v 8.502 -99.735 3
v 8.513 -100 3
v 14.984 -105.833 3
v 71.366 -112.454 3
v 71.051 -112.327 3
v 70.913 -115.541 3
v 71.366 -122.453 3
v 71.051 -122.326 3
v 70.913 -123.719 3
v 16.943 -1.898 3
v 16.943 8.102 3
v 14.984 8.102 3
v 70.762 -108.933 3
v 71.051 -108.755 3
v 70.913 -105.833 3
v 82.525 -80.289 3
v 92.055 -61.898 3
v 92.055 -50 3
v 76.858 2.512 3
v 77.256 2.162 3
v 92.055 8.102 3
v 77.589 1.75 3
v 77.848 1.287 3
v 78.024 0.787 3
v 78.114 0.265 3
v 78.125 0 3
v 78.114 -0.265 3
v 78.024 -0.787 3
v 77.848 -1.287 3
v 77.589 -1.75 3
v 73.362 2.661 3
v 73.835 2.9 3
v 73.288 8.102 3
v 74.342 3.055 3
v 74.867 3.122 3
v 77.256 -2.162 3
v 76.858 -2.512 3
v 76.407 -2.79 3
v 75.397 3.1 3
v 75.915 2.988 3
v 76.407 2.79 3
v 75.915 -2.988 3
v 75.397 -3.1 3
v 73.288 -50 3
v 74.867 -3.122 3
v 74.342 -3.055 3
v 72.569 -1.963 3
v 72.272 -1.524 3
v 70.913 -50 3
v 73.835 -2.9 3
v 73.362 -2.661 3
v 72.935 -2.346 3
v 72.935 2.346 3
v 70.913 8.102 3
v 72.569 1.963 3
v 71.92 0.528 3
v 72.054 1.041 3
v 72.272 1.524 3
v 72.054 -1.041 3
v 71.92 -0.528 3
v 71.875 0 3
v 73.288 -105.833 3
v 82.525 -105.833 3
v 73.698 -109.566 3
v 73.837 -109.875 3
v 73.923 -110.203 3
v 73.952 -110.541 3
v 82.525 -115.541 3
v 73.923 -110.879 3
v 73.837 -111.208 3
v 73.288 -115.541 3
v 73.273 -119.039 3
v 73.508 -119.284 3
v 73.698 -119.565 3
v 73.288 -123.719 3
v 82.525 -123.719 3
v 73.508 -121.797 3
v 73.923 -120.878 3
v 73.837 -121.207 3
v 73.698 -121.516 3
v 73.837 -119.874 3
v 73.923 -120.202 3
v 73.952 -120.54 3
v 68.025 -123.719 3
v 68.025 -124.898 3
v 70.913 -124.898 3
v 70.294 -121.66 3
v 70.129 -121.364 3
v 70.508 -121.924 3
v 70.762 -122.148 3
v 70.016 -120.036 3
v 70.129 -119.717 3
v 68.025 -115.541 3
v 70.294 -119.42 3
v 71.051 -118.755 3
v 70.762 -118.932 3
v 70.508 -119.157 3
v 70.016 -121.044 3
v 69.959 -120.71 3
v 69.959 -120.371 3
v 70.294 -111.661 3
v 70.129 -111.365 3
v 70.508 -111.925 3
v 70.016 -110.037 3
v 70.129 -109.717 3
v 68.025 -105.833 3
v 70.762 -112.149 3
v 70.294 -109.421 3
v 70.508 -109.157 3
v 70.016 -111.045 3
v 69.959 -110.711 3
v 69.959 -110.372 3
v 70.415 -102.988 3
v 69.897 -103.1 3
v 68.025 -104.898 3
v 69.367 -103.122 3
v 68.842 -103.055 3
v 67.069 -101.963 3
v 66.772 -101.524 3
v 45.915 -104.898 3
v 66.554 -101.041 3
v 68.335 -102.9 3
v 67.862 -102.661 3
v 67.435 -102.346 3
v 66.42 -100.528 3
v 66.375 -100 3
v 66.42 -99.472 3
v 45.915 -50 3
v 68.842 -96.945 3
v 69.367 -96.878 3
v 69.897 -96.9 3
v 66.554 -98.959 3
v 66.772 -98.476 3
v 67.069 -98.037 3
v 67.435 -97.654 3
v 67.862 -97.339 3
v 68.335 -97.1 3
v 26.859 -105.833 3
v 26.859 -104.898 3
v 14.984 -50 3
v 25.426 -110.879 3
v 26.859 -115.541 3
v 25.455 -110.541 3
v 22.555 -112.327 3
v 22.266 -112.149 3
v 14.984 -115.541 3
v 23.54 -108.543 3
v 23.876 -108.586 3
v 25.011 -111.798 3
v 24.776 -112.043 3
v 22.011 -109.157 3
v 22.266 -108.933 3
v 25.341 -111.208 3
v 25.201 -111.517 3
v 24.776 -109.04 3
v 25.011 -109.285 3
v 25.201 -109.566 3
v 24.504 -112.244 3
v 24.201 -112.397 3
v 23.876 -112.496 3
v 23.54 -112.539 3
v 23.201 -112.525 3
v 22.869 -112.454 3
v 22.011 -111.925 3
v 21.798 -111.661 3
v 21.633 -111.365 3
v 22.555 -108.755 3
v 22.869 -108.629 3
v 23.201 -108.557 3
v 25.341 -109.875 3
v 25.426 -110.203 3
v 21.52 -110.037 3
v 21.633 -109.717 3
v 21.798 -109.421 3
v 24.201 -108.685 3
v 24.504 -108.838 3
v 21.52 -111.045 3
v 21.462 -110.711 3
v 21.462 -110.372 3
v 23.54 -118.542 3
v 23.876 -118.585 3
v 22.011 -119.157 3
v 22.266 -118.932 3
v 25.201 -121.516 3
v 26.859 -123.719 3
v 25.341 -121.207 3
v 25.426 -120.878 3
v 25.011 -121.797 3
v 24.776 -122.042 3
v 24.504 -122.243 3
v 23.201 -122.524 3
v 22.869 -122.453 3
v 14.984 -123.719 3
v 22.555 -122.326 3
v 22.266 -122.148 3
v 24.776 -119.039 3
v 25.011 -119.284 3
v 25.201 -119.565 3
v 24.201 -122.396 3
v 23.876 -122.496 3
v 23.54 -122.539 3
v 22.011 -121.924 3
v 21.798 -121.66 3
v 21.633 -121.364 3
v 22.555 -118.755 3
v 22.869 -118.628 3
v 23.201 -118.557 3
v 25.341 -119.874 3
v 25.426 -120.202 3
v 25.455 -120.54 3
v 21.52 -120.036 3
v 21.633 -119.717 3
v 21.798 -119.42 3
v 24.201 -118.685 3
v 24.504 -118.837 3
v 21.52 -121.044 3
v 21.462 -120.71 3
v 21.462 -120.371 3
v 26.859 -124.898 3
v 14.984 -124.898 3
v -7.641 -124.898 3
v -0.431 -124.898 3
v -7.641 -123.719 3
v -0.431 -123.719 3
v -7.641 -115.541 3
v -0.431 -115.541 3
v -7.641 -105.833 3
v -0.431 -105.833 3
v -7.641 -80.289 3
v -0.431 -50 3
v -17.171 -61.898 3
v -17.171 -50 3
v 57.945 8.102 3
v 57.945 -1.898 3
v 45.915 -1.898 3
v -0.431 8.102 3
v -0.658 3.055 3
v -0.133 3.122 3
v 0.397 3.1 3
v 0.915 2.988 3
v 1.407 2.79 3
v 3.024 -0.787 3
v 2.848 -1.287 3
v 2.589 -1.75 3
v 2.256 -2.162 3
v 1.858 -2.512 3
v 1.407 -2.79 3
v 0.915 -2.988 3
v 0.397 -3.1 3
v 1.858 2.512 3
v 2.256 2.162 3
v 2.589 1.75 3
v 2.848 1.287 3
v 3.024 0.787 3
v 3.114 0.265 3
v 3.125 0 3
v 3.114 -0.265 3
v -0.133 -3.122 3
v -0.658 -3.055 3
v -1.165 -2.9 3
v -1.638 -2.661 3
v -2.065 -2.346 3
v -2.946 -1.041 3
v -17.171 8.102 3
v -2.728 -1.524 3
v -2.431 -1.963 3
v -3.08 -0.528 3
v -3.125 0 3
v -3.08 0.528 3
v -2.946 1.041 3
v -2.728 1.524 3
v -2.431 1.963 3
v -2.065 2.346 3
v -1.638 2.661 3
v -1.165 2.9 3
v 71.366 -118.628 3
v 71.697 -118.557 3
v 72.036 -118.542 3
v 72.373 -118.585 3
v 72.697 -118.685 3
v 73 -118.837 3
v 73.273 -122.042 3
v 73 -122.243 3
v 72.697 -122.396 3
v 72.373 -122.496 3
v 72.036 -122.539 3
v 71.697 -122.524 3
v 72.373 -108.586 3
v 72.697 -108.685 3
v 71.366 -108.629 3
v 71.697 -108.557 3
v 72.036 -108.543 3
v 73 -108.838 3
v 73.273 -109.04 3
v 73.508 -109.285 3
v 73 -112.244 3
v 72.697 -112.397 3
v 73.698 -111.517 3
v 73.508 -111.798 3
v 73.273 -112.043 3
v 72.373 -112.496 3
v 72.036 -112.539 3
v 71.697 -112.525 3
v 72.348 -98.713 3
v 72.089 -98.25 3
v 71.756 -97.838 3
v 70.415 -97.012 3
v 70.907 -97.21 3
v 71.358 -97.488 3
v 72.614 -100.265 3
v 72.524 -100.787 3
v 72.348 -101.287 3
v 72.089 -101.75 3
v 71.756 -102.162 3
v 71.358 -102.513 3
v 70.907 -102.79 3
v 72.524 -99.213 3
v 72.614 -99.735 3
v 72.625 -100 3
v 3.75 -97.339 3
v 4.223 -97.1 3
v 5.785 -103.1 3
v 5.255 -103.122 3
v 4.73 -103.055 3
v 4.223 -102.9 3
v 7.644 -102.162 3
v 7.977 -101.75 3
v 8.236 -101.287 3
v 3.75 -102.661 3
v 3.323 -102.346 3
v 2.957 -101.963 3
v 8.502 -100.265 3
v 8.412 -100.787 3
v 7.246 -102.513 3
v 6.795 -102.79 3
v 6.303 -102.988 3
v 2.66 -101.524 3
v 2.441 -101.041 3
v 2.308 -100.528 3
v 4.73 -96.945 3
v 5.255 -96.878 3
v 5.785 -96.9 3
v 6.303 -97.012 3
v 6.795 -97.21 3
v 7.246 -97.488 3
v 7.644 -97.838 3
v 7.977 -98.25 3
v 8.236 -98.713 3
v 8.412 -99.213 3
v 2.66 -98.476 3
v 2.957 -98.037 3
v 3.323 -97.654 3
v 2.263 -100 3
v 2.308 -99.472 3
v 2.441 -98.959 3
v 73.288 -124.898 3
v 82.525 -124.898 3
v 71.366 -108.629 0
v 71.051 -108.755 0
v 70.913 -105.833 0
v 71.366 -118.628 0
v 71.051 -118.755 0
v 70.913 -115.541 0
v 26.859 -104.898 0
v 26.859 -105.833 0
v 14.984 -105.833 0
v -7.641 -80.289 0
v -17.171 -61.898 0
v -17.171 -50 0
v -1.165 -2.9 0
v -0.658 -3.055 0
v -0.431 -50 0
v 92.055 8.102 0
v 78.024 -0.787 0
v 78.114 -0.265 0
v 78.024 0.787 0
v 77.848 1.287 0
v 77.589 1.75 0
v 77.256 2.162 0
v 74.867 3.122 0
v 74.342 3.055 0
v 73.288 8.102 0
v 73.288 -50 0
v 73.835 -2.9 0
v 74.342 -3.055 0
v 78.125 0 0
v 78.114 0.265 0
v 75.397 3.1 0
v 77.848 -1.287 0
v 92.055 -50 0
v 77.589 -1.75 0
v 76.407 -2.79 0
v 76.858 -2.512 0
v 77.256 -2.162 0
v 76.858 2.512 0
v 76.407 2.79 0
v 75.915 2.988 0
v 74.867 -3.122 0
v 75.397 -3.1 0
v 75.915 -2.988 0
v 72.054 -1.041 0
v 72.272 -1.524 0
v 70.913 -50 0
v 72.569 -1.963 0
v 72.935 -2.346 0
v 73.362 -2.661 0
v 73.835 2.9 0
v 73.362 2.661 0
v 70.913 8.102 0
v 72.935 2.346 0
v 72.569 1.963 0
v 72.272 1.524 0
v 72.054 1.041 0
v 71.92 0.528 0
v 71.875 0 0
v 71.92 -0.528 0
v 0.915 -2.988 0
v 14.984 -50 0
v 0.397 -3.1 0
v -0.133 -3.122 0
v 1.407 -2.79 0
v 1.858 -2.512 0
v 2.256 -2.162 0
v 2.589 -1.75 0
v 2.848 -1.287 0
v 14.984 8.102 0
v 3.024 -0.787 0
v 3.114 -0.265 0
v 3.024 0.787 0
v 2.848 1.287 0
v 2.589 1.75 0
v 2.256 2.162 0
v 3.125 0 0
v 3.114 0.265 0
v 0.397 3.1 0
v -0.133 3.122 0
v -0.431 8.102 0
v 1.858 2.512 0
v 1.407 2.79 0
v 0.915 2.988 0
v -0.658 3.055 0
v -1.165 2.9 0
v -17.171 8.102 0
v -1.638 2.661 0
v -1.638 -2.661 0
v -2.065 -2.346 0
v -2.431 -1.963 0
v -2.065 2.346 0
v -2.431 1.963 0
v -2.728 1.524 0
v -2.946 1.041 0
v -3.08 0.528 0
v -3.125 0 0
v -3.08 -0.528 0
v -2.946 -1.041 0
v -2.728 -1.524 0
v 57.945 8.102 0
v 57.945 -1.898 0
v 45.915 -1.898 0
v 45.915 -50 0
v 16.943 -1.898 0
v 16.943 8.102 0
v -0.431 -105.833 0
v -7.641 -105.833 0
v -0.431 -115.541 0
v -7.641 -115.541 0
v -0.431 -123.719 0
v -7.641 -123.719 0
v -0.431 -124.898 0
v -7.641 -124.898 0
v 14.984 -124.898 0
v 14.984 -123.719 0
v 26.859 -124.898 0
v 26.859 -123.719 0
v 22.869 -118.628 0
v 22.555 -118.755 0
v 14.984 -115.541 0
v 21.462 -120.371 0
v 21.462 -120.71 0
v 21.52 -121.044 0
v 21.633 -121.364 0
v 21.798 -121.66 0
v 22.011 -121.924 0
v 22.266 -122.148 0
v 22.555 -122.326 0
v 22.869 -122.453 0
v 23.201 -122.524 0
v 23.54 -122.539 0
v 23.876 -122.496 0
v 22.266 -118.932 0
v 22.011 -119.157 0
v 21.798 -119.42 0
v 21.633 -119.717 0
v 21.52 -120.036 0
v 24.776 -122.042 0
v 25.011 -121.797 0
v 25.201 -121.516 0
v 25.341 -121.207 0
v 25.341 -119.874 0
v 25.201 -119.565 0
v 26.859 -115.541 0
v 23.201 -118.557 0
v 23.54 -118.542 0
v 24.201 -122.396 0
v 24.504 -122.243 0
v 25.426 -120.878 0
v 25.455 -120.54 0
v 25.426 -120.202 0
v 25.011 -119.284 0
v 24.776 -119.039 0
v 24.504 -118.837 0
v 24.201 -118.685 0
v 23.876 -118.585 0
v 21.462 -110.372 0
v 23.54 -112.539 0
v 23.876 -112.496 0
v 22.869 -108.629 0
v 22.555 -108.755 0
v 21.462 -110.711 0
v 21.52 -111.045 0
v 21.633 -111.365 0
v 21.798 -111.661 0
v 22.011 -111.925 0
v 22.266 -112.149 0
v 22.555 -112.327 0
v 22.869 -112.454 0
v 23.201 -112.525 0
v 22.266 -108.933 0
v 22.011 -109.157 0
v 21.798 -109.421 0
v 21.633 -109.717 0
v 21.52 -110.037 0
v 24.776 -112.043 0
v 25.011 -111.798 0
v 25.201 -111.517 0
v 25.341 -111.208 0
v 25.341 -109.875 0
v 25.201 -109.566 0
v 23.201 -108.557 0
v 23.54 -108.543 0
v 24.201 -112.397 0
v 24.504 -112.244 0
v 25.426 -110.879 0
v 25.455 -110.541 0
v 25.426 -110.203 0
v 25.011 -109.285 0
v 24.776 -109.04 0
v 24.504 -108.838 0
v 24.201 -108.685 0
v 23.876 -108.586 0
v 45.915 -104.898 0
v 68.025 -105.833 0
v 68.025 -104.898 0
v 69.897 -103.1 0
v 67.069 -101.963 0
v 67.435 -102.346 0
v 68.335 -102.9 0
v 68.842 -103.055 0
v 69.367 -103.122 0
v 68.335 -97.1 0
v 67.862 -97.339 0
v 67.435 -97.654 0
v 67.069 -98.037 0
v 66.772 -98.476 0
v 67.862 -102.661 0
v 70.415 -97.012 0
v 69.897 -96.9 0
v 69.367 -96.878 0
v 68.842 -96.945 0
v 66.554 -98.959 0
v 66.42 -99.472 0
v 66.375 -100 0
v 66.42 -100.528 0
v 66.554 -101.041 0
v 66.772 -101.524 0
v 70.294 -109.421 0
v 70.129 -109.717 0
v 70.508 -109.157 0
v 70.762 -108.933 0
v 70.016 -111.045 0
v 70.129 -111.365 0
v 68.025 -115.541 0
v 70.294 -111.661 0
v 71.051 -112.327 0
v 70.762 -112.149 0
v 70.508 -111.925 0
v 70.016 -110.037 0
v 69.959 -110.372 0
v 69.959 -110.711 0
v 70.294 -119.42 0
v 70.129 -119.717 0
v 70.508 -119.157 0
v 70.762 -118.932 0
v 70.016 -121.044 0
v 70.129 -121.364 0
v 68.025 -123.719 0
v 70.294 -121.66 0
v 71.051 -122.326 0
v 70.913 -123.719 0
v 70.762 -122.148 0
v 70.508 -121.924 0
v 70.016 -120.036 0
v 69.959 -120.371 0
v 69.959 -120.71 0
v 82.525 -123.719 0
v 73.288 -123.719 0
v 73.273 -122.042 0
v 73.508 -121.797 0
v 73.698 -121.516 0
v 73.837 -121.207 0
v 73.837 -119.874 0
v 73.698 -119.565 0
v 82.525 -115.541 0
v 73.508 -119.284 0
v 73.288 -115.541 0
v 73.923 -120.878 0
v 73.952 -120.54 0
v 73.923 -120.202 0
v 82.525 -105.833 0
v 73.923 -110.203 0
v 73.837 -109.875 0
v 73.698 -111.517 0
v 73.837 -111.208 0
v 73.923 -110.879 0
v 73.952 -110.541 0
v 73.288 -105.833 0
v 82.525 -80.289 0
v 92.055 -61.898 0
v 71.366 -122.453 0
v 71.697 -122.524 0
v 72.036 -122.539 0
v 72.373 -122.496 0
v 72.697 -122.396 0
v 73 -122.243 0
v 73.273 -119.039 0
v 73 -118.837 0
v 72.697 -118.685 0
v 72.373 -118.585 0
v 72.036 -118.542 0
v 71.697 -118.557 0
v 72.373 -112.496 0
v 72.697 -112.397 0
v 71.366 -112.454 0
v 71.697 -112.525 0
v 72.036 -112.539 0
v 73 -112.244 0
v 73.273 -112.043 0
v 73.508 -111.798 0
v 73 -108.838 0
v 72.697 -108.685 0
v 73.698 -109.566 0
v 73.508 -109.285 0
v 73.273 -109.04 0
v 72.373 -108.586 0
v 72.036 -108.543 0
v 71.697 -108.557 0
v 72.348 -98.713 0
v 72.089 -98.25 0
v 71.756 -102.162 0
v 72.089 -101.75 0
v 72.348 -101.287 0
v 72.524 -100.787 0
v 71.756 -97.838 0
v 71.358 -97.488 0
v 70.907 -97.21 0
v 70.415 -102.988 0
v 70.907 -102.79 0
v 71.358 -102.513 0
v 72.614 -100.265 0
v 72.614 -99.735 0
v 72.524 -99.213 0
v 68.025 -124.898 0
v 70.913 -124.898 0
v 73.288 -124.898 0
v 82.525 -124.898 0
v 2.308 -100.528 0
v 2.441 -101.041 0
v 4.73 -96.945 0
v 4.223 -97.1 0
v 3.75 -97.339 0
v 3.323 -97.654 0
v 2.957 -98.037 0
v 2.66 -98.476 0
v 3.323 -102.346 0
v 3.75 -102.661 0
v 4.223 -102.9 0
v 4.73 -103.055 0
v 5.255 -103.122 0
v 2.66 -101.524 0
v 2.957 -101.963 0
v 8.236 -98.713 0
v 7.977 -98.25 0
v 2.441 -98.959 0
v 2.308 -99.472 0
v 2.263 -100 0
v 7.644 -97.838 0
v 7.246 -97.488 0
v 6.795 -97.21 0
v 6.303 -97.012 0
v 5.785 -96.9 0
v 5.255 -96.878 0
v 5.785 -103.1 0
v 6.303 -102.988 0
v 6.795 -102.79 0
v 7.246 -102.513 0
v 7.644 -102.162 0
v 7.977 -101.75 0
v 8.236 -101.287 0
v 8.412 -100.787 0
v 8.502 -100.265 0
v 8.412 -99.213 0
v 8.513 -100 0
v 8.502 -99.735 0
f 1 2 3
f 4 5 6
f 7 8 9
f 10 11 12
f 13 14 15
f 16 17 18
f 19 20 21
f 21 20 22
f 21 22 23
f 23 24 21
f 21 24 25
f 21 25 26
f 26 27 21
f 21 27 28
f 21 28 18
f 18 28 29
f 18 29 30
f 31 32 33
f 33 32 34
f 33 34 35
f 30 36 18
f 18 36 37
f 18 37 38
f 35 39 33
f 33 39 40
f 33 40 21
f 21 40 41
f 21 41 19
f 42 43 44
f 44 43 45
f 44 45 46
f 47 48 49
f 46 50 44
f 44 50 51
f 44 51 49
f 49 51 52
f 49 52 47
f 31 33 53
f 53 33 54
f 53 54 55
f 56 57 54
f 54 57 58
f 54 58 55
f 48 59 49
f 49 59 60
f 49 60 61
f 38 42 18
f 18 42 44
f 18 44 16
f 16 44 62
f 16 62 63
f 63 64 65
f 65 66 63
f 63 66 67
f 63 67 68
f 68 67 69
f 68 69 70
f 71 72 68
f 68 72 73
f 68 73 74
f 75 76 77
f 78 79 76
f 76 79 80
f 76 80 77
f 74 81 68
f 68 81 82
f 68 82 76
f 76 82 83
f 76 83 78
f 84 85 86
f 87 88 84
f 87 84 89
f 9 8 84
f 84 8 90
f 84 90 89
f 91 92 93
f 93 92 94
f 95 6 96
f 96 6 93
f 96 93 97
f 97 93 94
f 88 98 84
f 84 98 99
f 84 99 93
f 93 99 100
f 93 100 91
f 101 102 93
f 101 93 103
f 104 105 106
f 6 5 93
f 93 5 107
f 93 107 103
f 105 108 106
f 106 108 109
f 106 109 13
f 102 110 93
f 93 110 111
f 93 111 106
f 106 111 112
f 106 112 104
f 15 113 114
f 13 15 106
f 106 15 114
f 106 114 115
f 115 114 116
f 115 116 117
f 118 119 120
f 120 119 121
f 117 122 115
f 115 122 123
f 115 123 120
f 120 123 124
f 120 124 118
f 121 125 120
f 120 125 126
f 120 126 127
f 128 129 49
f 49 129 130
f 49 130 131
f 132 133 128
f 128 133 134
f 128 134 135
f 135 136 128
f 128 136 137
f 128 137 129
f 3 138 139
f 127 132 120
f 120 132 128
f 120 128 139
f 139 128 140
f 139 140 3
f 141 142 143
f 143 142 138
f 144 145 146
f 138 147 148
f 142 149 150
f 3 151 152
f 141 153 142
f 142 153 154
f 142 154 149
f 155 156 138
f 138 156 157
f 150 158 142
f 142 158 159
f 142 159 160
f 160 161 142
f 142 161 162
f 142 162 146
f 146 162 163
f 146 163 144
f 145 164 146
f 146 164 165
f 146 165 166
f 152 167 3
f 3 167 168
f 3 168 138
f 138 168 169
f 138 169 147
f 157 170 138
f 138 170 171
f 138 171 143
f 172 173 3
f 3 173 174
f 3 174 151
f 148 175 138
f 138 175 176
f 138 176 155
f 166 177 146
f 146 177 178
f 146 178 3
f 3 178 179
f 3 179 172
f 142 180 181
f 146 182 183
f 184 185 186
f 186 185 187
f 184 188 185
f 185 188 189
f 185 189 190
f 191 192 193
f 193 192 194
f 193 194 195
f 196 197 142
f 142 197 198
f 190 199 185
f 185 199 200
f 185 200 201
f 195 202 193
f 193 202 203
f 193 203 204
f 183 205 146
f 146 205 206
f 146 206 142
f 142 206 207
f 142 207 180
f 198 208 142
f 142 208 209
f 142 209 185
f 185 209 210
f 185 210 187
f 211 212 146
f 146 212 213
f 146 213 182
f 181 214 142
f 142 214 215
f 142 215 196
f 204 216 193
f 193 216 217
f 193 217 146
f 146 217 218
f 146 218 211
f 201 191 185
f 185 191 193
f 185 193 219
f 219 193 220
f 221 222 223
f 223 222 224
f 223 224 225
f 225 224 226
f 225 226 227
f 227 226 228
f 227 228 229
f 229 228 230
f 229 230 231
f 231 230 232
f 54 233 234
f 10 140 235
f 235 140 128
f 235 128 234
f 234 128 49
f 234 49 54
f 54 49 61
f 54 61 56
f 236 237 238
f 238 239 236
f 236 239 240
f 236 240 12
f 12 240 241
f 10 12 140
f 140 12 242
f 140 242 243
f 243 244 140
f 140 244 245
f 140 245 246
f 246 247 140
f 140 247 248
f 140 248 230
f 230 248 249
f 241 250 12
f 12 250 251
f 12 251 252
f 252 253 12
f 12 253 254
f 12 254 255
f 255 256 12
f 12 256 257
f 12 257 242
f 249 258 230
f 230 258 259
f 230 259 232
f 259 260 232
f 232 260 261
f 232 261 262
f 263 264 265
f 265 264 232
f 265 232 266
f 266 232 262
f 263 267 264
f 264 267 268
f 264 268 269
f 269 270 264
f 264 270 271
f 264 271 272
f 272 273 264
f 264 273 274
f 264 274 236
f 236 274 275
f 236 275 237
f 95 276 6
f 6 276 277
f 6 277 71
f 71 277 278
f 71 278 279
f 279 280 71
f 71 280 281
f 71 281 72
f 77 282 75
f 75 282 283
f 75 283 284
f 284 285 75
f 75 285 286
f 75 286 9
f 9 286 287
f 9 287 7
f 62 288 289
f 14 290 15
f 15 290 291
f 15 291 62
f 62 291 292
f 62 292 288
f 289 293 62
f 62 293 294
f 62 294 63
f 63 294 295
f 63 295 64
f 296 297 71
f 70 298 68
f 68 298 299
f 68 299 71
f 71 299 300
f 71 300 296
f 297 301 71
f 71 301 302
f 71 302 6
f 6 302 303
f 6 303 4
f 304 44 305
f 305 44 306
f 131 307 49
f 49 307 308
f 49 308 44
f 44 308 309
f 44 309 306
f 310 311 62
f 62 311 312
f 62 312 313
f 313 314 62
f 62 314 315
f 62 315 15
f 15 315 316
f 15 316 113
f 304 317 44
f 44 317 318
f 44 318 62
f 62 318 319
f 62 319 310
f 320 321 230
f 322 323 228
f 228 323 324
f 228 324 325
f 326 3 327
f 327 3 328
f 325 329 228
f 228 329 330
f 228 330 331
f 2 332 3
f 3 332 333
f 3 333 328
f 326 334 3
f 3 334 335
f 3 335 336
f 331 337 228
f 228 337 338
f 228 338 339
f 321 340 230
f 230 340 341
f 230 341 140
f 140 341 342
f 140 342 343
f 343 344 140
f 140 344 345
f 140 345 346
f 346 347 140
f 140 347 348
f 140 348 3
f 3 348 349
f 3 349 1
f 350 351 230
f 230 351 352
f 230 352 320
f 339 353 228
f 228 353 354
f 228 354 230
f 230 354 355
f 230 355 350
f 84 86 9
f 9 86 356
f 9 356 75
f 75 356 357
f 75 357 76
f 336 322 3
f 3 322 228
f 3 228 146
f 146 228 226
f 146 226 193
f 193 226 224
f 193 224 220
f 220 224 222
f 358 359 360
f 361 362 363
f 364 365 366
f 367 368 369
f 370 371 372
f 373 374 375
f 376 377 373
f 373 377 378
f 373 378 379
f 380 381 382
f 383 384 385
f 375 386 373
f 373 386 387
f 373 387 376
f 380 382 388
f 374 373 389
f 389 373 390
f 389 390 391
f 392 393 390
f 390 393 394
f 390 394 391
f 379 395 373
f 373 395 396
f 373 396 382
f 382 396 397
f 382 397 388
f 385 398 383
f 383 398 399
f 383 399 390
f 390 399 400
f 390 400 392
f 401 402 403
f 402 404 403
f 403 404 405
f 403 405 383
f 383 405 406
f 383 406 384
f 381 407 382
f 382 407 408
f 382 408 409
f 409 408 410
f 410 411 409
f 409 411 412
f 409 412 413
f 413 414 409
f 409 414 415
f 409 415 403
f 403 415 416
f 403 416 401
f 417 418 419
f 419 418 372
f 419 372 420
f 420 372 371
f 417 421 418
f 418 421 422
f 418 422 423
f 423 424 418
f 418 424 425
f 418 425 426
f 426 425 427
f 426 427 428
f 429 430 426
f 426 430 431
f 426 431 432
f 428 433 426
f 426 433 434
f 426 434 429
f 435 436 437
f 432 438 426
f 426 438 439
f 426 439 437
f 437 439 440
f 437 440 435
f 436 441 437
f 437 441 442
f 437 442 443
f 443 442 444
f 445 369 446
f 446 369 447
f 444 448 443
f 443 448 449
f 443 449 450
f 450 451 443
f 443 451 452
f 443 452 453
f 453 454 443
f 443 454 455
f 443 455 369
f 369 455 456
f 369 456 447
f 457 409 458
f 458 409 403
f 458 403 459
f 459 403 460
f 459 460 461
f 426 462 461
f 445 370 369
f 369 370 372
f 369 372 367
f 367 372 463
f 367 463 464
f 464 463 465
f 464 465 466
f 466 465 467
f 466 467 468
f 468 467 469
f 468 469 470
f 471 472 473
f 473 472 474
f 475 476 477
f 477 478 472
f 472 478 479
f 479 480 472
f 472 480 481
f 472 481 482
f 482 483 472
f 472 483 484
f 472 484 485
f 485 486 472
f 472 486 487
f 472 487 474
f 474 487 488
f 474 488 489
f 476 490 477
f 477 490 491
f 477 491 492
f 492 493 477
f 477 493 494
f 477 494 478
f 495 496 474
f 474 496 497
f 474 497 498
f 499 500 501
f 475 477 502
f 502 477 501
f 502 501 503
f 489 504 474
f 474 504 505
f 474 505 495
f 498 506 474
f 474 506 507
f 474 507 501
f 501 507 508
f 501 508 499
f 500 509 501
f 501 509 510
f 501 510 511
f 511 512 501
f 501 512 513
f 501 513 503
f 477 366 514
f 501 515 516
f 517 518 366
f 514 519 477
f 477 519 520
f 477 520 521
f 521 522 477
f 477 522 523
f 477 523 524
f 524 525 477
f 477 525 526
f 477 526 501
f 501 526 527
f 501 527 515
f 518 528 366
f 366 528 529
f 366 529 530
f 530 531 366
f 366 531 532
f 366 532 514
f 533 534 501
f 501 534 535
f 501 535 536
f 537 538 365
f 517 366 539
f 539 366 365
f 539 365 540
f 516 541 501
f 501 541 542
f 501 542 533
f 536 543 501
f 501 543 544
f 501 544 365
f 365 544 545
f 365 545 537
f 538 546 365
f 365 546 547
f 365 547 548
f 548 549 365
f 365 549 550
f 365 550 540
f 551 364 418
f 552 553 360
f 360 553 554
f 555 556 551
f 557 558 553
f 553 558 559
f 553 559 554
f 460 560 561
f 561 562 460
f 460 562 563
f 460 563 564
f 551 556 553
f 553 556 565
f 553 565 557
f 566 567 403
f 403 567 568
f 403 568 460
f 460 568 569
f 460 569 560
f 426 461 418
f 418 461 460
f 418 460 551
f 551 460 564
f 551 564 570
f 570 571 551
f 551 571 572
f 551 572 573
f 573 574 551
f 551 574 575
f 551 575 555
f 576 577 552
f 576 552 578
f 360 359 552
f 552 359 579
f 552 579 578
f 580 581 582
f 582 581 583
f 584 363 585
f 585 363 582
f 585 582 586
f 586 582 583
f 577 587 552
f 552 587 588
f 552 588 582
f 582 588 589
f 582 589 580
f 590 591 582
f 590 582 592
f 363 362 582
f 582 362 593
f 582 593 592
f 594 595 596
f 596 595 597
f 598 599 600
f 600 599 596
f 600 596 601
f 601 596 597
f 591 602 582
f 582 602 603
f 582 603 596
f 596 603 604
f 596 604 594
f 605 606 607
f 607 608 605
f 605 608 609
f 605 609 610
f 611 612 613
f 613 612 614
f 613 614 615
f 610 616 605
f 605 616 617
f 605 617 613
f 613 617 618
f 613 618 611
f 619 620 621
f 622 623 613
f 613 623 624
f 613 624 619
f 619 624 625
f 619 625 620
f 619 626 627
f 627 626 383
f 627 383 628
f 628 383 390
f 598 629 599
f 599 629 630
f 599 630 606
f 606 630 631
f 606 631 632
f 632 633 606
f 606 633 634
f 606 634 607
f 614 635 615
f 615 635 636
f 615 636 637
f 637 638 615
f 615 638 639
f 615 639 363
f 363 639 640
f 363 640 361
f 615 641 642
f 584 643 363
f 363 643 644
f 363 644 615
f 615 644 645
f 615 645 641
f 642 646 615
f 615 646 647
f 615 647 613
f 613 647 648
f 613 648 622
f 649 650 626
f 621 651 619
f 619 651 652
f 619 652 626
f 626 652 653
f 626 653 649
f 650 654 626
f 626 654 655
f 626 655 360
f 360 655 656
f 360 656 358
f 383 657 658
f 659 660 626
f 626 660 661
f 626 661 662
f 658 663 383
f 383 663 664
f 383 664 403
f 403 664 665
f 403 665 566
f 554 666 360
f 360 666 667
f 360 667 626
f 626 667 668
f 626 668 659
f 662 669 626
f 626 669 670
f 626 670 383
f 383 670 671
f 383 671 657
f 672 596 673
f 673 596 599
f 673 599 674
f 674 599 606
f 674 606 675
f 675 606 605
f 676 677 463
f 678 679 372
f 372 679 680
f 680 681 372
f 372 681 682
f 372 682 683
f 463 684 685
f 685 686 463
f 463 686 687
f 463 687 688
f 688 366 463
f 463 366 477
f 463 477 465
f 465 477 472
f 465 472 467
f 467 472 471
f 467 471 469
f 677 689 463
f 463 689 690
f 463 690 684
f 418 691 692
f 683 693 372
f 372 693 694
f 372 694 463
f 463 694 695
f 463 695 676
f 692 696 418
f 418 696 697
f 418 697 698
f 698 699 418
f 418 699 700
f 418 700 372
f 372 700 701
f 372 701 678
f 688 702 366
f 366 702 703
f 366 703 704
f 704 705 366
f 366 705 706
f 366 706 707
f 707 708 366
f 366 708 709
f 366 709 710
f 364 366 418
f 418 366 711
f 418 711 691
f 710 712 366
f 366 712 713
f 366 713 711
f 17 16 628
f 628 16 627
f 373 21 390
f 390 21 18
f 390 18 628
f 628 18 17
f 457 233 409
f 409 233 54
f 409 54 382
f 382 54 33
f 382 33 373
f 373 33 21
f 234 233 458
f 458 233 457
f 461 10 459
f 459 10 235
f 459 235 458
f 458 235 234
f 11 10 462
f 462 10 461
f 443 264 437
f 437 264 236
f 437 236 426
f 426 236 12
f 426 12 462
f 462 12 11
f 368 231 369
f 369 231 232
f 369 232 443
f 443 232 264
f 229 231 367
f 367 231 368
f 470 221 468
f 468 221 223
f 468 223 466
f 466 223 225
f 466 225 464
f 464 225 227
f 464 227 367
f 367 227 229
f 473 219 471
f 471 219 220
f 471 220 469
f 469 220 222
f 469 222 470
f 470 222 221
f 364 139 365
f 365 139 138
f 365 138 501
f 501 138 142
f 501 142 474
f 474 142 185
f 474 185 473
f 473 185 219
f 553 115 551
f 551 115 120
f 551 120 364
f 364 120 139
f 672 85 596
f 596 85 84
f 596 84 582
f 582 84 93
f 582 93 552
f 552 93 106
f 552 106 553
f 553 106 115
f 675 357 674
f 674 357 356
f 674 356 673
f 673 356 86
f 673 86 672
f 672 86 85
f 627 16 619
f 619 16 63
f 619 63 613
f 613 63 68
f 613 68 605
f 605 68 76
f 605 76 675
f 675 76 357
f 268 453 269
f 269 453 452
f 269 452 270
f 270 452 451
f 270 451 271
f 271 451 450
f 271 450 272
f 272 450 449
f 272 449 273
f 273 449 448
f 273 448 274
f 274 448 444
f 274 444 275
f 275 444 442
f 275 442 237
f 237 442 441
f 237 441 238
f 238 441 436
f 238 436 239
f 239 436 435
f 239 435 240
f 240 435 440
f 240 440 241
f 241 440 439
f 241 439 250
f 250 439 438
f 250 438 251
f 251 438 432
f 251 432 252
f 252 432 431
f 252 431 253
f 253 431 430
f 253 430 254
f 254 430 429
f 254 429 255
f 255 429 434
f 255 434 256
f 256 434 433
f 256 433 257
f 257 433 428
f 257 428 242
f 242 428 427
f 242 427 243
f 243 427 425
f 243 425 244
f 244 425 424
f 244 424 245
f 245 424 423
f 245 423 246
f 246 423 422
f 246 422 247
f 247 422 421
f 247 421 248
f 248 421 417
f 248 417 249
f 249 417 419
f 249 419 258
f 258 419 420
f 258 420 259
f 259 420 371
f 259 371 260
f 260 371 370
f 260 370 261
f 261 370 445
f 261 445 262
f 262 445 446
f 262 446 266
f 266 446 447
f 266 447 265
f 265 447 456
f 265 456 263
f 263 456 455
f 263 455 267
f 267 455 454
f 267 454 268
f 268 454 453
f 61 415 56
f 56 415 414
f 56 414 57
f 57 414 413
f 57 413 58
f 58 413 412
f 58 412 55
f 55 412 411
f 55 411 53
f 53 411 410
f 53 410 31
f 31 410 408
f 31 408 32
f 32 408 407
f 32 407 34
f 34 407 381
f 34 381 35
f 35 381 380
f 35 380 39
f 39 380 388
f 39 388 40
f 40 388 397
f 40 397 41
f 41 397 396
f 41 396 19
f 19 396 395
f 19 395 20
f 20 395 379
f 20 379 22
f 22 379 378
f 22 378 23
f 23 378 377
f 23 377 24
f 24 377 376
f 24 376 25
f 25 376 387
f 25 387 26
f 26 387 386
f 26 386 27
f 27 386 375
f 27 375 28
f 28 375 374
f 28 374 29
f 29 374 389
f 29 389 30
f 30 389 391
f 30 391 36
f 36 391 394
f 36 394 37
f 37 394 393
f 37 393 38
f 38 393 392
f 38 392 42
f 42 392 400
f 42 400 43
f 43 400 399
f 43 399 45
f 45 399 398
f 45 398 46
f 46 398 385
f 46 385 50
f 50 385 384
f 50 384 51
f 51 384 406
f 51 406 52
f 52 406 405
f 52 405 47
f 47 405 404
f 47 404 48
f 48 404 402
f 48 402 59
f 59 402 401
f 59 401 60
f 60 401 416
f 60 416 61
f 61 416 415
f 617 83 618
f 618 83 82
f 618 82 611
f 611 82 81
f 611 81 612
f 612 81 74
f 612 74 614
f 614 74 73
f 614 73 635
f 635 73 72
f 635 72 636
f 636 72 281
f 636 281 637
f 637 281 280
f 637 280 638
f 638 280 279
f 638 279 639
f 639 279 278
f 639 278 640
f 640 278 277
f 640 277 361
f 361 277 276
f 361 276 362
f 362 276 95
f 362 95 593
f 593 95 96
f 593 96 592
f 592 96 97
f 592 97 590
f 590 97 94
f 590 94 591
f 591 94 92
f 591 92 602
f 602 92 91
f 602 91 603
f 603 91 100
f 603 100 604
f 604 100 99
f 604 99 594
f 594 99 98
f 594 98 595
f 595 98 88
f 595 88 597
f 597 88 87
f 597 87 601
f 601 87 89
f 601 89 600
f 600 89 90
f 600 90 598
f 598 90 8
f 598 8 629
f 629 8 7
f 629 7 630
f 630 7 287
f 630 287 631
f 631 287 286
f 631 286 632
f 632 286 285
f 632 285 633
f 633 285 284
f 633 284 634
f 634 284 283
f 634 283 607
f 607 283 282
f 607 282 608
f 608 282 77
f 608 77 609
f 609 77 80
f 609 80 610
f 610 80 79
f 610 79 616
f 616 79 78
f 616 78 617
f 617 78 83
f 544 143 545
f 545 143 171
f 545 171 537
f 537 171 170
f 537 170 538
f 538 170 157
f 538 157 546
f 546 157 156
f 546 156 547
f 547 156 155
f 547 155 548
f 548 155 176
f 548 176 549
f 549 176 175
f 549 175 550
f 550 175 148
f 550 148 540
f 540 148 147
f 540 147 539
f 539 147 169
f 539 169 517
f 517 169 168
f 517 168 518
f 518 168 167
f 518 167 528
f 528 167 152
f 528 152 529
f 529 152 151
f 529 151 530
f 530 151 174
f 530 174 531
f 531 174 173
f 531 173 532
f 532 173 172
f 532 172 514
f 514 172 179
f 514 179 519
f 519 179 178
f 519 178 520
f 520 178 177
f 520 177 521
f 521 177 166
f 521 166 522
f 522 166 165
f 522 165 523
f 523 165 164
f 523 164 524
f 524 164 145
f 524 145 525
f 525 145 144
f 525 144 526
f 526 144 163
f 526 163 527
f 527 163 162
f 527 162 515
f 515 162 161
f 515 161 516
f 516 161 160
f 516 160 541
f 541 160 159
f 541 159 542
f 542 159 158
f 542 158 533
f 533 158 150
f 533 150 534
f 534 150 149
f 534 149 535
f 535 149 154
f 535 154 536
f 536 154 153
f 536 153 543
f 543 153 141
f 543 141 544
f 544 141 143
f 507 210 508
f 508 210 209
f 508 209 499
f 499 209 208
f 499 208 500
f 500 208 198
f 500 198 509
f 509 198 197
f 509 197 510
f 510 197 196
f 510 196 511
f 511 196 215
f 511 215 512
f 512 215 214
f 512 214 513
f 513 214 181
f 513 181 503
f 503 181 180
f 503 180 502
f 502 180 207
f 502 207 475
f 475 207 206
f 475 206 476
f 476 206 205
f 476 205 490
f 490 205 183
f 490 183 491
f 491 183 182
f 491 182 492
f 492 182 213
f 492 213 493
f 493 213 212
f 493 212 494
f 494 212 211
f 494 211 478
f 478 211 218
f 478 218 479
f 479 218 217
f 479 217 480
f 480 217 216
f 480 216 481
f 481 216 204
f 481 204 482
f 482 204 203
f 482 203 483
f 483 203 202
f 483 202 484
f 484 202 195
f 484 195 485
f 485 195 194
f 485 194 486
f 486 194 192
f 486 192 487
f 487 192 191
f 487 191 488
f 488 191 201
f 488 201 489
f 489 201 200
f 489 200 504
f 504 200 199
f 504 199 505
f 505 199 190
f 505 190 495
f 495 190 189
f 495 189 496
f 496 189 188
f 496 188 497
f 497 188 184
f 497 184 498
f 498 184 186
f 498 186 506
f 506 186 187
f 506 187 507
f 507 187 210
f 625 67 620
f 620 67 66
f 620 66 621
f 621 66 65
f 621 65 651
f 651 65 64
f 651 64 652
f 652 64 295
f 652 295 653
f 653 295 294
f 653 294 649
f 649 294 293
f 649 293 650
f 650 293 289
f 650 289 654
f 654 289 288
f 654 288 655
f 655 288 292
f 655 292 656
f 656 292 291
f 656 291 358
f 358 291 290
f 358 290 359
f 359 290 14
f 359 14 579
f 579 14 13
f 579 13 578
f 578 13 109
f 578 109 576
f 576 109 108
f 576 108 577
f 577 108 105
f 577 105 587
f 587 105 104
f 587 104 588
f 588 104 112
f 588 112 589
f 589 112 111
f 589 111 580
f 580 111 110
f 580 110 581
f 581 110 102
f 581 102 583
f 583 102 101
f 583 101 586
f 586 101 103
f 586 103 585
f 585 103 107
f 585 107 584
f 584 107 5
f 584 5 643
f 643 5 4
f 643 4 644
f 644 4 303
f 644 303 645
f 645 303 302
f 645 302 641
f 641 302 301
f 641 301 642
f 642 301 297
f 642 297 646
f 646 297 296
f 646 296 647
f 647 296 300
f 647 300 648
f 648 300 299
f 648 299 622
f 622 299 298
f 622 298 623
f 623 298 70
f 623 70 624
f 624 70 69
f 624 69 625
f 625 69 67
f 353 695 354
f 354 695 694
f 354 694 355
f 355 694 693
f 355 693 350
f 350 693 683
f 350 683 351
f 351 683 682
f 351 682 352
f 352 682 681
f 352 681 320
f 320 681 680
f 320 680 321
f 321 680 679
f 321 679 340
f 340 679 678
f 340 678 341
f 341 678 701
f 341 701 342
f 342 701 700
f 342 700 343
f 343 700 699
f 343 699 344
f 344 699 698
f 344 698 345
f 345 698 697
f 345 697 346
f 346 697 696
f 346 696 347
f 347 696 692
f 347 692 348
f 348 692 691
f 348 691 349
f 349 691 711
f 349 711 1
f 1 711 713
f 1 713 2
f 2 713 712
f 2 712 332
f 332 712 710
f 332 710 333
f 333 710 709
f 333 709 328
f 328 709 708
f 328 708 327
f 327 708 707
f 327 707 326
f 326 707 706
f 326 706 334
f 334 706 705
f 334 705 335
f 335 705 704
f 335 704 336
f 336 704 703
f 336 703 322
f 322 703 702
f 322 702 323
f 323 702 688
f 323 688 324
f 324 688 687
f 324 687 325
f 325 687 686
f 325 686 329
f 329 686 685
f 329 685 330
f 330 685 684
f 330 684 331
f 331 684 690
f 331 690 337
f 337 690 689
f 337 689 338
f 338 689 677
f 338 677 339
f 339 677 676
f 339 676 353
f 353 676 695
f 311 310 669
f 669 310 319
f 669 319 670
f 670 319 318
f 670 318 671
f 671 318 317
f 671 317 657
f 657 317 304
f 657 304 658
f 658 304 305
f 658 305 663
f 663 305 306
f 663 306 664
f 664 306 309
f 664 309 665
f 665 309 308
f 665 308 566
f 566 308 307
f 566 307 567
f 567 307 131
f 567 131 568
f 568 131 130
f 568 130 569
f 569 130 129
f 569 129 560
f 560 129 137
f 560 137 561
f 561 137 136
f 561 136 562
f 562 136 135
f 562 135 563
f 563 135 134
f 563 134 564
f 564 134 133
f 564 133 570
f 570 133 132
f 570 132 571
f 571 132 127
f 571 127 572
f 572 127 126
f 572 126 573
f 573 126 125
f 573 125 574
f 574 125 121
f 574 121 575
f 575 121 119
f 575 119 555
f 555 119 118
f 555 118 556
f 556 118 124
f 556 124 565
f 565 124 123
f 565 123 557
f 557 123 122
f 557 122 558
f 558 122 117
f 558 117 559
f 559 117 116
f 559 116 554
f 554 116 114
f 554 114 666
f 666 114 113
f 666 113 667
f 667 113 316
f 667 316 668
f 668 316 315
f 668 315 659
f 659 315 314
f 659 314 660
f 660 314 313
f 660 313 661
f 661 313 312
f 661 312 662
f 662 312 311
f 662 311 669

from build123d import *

# Parameters (mm, degrees)
SKETCH1_R           = 3.125
BOSS_EXTRUDE1_DEPTH = 3
SKETCH2_R           = 2
CUT_EXTRUDE1_DEPTH  = 3
SKETCH3_R           = 3.125
CUT_EXTRUDE2_DEPTH  = 3


with BuildPart() as part:
    # Sketch1 → Boss-Extrude1 (new body)
    with BuildSketch(Plane.XY):
        Polygon((-17.171078522, 8.102088167), (16.942973826, 8.102088167), (16.942973826, -1.897911833), (57.945, -1.897911833), (57.945, 8.102088167), (92.055, 8.102088167), (92.055, -61.897911833), (82.525114176, -80.288734737), (82.525114176, -124.897911833), (68.025114176, -124.897911833), (68.025114176, -104.897911833), (26.858807303, -104.897911833), (26.858807303, -124.897911833), (-7.641192697, -124.897911833), (-7.641192697, -80.288734737), (-17.171078522, -61.897911833), align=None)
        Circle(SKETCH1_R, mode=Mode.SUBTRACT)
        with Locations((75, 0)):
            Circle(SKETCH1_R, mode=Mode.SUBTRACT)
    extrude(amount=BOSS_EXTRUDE1_DEPTH)

    # Sketch2 → Cut-Extrude1 (cut)
    with BuildSketch(Plane.XY.offset(3)):
        with Locations((71.951514176, -120.540427833)):
            Circle(SKETCH2_R)
        with Locations((71.951514176, -110.541227833)):
            Circle(SKETCH2_R)
        with Locations((23.455105176, -120.540427833)):
            Circle(SKETCH2_R)
        with Locations((23.455105176, -110.541227833)):
            Circle(SKETCH2_R)
    extrude(amount=-CUT_EXTRUDE1_DEPTH, mode=Mode.SUBTRACT)

    # Sketch3 → Cut-Extrude2 (cut)
    with BuildSketch(Plane(origin=(0, 0, 0), x_dir=(-1, 0, 0), z_dir=(0, 0, -1))):
        with Locations((-69.500000176, -100.000011833)):
            Circle(SKETCH3_R)
        with Locations((-5.387973651, -100.000011833)):
            Circle(SKETCH3_R)
    extrude(amount=-CUT_EXTRUDE2_DEPTH, mode=Mode.SUBTRACT)


solid = part.part
